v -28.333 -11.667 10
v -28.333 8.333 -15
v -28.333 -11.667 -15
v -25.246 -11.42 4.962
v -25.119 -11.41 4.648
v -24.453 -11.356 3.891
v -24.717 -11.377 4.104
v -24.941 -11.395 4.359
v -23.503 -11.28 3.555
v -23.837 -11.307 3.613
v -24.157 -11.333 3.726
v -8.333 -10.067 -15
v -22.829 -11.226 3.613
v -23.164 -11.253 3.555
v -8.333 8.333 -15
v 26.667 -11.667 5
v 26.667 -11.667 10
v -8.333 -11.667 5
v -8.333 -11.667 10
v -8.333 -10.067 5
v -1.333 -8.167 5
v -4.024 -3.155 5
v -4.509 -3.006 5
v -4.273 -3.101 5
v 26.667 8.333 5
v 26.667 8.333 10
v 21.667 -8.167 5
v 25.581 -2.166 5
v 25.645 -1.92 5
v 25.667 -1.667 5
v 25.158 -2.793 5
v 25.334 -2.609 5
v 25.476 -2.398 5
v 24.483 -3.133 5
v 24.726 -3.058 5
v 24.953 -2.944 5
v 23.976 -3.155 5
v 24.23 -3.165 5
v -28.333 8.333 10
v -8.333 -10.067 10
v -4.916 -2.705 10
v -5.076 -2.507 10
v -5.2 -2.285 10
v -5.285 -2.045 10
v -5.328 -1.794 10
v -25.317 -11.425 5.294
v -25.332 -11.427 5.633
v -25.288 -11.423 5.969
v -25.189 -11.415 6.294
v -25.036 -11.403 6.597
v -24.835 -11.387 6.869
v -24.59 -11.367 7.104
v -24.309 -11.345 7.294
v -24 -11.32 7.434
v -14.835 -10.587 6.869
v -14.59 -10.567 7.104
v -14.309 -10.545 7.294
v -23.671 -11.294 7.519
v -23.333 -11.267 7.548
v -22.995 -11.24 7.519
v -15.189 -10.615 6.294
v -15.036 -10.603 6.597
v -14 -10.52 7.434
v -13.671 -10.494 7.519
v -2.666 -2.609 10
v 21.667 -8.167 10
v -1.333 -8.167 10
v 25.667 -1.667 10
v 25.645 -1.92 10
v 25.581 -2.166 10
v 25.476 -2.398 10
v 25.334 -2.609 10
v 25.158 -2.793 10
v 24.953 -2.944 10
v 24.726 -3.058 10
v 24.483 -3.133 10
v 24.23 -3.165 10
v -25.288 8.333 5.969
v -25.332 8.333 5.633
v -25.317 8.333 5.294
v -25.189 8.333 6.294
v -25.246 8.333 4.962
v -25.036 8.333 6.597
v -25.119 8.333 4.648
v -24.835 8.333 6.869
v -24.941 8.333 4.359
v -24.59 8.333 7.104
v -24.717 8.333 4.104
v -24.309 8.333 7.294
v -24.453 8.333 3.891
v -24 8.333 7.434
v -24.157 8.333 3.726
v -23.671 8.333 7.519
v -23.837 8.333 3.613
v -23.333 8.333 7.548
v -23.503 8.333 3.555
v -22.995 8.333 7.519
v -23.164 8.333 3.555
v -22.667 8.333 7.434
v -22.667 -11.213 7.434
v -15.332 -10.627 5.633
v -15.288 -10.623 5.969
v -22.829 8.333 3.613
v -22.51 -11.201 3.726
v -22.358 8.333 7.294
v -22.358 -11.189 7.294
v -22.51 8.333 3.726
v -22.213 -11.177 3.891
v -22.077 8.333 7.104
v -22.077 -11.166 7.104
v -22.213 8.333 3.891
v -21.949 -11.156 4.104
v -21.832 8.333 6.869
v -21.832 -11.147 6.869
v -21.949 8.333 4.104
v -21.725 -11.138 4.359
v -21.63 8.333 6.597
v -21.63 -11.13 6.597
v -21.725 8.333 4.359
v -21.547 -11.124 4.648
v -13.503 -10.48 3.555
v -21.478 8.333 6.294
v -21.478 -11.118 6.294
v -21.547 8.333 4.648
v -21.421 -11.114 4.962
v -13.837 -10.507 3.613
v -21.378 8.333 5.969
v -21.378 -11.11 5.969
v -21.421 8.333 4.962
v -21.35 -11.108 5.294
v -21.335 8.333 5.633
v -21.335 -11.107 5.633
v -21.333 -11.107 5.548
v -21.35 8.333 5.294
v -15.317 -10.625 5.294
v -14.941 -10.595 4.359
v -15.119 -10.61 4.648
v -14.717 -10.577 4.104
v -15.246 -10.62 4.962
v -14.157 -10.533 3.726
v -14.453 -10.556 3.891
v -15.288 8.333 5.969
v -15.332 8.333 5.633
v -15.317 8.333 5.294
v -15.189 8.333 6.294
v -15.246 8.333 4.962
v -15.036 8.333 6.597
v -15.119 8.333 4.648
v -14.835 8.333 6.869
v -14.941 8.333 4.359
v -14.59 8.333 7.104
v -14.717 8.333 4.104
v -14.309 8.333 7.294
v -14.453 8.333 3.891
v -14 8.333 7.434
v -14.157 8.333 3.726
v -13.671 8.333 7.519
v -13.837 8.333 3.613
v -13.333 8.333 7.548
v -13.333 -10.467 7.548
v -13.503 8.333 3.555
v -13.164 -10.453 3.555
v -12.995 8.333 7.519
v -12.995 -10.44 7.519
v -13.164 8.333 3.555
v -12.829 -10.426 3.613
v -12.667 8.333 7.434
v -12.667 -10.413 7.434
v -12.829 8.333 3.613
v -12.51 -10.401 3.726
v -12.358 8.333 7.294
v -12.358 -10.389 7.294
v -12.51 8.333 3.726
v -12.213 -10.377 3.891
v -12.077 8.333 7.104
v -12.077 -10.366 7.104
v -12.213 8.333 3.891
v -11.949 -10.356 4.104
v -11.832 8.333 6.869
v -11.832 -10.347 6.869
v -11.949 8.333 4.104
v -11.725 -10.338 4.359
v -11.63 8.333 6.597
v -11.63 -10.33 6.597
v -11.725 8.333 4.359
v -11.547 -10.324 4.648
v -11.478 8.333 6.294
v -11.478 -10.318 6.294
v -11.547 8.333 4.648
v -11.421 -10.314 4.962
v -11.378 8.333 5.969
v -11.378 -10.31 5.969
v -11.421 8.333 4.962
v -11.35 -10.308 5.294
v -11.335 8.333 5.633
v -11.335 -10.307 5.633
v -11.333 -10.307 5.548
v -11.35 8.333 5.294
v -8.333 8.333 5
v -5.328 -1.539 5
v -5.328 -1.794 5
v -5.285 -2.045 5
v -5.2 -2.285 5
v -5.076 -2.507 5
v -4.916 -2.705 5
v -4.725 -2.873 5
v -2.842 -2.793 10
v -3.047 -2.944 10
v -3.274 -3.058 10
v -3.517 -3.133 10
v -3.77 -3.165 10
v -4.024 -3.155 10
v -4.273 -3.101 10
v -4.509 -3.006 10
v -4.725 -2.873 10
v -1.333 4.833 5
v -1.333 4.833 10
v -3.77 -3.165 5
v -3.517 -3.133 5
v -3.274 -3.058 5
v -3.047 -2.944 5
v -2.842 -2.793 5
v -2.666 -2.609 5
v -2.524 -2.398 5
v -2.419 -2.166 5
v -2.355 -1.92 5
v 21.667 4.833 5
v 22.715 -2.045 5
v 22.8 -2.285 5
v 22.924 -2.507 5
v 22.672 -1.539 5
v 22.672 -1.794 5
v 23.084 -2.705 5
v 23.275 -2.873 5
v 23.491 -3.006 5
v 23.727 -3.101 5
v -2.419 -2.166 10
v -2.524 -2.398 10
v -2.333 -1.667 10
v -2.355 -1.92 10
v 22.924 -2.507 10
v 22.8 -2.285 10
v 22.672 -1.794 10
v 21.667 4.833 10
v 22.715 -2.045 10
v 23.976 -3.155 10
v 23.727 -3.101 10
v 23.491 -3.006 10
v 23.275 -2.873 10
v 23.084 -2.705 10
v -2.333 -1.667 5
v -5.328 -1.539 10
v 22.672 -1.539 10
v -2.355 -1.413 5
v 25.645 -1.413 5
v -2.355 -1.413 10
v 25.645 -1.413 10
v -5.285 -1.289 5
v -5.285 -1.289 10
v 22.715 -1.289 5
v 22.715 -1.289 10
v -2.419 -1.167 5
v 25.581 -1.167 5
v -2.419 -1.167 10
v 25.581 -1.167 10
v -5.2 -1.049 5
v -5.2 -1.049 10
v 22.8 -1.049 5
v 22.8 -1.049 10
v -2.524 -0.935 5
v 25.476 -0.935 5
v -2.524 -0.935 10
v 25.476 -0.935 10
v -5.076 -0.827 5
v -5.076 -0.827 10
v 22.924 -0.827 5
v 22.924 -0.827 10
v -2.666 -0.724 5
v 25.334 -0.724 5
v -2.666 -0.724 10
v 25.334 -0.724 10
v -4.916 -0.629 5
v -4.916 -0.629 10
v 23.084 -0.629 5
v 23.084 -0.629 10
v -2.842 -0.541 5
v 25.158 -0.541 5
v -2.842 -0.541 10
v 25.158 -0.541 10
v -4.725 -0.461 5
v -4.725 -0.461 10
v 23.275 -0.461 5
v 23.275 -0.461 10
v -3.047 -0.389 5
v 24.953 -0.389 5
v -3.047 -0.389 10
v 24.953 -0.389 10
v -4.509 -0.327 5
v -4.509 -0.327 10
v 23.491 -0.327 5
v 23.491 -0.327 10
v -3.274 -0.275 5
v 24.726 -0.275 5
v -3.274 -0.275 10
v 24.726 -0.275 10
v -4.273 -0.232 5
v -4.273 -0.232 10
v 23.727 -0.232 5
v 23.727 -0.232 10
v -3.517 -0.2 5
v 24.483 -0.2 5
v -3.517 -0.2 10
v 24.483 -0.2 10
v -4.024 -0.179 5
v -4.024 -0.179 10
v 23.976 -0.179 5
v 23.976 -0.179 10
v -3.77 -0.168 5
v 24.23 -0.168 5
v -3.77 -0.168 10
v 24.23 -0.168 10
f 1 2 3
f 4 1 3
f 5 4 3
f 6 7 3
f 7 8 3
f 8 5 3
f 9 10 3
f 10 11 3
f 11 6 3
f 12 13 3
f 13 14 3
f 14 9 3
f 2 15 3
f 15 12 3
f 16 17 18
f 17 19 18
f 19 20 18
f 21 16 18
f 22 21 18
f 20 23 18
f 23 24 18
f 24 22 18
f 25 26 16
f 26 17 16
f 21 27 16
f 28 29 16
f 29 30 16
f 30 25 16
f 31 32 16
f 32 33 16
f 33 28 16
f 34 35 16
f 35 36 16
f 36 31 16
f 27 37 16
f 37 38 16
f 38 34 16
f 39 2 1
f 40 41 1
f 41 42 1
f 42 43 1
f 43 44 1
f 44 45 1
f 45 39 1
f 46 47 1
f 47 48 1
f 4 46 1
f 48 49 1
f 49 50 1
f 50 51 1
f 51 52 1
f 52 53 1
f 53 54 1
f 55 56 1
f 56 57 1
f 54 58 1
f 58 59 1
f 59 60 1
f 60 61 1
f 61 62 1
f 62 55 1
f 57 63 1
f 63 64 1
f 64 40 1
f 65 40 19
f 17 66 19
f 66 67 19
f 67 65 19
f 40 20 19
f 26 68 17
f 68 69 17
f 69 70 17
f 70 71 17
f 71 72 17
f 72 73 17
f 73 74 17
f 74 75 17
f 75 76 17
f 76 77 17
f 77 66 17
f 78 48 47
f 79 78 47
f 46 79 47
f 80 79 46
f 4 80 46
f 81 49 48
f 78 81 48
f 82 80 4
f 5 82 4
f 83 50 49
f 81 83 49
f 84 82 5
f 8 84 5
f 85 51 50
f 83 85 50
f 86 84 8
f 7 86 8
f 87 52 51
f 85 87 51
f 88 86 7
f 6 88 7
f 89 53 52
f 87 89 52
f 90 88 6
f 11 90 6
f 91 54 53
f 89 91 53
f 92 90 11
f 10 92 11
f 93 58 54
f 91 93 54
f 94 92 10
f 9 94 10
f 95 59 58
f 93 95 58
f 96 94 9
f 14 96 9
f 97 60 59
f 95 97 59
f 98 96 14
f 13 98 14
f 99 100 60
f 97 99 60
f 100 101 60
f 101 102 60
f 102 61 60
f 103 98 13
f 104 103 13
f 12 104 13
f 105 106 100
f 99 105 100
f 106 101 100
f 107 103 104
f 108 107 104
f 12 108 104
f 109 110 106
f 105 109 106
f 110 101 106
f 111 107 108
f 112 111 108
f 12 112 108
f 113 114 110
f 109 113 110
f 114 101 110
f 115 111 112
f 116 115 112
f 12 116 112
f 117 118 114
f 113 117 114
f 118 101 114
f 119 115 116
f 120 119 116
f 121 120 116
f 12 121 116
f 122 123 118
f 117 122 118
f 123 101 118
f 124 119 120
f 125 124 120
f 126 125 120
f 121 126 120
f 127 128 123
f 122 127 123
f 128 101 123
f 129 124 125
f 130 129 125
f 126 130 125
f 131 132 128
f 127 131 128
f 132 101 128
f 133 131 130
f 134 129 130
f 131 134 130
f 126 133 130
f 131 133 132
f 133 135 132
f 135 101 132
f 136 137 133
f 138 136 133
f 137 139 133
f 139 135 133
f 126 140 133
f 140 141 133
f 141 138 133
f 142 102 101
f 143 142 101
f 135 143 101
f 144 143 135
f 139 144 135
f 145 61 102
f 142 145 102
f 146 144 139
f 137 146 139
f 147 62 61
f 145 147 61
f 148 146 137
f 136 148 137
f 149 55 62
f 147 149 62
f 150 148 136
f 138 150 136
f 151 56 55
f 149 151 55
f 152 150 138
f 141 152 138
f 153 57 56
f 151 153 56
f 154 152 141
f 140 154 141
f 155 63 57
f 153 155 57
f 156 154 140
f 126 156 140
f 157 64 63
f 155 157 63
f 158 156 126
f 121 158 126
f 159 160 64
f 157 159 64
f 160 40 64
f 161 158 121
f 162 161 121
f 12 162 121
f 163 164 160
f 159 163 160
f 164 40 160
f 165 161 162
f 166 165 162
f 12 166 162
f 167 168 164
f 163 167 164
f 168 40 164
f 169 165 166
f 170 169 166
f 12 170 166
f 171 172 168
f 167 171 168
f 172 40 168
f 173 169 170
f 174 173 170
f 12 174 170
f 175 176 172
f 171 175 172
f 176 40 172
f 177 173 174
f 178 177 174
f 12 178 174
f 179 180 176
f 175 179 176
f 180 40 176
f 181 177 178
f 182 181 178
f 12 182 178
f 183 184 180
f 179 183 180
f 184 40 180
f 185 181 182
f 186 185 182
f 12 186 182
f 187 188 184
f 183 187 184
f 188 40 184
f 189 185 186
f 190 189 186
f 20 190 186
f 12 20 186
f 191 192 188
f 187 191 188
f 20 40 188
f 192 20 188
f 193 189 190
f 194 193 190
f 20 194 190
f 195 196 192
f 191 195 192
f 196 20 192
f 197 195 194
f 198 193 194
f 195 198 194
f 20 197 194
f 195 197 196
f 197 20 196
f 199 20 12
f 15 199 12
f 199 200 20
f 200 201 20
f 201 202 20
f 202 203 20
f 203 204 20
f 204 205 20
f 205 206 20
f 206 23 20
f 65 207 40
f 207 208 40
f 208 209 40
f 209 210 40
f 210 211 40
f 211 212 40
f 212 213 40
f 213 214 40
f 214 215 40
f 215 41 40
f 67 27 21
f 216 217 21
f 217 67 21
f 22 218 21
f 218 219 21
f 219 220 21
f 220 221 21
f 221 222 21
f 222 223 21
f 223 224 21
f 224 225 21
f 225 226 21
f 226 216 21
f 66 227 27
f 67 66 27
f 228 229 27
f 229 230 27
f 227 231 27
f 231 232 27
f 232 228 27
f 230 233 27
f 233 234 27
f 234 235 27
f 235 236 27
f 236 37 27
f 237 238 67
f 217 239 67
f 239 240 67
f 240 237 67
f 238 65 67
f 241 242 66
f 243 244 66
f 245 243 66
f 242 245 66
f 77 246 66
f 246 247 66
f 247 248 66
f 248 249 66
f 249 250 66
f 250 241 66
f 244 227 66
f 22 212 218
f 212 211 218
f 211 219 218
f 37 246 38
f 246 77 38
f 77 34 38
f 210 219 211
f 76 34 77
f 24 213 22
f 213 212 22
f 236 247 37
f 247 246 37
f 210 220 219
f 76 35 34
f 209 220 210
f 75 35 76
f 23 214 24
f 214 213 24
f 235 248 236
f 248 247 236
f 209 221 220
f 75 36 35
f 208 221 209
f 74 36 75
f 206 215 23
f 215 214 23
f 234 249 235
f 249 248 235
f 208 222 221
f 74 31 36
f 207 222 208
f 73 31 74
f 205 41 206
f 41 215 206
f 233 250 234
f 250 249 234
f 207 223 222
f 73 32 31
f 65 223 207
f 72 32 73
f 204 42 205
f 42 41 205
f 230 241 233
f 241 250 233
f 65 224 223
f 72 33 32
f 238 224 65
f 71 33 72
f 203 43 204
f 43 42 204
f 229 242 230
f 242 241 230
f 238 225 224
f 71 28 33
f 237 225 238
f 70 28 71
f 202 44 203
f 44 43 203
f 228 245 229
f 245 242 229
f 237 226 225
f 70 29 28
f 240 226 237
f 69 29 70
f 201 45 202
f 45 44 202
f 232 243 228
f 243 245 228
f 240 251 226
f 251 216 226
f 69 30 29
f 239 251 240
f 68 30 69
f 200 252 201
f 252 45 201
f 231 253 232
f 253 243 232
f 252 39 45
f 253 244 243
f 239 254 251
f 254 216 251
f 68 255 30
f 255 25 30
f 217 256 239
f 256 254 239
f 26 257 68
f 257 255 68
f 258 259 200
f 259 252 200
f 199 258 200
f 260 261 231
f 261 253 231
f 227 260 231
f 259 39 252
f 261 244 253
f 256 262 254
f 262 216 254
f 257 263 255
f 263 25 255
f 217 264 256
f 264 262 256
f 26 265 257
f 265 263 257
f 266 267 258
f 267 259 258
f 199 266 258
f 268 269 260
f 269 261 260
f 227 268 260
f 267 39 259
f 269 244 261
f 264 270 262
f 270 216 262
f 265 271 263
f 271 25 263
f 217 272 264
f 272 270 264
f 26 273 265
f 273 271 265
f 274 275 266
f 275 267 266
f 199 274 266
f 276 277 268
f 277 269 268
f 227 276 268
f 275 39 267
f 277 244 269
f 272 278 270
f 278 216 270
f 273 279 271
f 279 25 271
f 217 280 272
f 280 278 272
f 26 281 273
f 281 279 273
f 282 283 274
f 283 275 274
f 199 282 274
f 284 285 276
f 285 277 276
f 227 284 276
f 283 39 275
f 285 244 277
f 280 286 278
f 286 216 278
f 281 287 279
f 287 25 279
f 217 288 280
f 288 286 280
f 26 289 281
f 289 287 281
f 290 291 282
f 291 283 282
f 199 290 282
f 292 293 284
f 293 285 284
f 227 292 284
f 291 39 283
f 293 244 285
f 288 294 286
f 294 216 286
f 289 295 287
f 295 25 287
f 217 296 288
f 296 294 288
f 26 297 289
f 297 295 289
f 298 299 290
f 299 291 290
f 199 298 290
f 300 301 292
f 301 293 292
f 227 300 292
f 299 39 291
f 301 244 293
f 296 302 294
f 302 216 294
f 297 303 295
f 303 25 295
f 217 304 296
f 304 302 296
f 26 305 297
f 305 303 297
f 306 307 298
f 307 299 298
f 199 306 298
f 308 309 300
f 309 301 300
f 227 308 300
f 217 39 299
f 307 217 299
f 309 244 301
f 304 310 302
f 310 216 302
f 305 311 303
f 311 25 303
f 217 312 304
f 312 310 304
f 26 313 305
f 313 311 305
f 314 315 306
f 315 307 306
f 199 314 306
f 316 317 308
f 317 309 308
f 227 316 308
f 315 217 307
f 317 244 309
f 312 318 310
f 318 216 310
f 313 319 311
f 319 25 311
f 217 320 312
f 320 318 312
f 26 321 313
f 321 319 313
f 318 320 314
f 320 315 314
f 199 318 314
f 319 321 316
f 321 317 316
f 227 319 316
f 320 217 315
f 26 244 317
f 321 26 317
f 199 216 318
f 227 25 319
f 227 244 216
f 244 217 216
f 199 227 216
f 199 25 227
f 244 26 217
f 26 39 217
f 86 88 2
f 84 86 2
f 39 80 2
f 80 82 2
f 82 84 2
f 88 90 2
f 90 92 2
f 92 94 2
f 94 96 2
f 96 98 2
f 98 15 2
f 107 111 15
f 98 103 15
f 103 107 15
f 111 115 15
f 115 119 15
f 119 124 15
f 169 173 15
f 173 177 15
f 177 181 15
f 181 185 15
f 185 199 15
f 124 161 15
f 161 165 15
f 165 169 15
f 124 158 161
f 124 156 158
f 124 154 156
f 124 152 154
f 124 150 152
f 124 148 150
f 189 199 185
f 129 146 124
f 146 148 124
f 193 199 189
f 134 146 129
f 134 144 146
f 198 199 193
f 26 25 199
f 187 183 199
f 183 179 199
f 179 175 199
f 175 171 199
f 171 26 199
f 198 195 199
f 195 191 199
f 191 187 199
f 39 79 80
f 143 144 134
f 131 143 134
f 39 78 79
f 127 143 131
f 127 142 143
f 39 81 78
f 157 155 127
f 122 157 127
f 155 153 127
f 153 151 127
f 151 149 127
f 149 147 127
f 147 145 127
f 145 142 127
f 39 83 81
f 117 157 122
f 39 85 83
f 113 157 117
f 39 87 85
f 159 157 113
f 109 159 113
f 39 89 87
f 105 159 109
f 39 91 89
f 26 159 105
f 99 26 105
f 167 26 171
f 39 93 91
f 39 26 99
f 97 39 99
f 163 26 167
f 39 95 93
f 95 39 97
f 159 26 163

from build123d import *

# Parameters (mm, degrees)
ESQUISSE1_W             = 55
ESQUISSE1_H             = 20
BOSS_EXTRU_1_DEPTH      = 10
ESQUISSE2_R             = 2
ENL_V_MAT_EXTRU_1_DEPTH = 20
ESQUISSE3_R             = 1.5
ESQUISSE3_W             = 23
ESQUISSE3_H             = 13
ENL_V_MAT_EXTRU_2_DEPTH = 20
BOSS_EXTRU_2_DEPTH      = 15
ENL_V_MAT_EXTRU_3_DEPTH = 15
ESQUISSE7_W             = 35
ESQUISSE7_H             = 20
ENL_V_MAT_EXTRU_4_DEPTH = 5


with BuildPart() as part:
    # Esquisse1 → Boss.-Extru.1 (new body)
    with BuildSketch(Plane.XY):
        with Locations((-0.833333333, -1.666666667)):
            Rectangle(ESQUISSE1_W, ESQUISSE1_H)
    extrude(amount=BOSS_EXTRU_1_DEPTH)

    # Esquisse2 → Enlèv. mat.-Extru.1 (cut)
    with BuildSketch(Plane(origin=(0, 8.333333333, 0), x_dir=(1, 0, 0), z_dir=(0, 1, 0))):
        with Locations(Location((-23.333333333, -5.548124667, 0), (0, 0, 270))):
            Circle(ESQUISSE2_R)
        with Locations(Location((-13.333333333, -5.548124667, 0), (0, 0, 270))):
            Circle(ESQUISSE2_R)
    extrude(amount=-ENL_V_MAT_EXTRU_1_DEPTH, mode=Mode.SUBTRACT)

    # Esquisse3 → Enlèv. mat.-Extru.2 (cut)
    with BuildSketch(Plane.XY.offset(10)):
        with Locations((24.166666667, -1.666666667)):
            Circle(ESQUISSE3_R)
        with Locations((-3.833333333, -1.666666667)):
            Circle(ESQUISSE3_R)
        with Locations((10.166666667, -1.666666667)):
            Rectangle(ESQUISSE3_W, ESQUISSE3_H)
    extrude(amount=-ENL_V_MAT_EXTRU_2_DEPTH, mode=Mode.SUBTRACT)

    # Esquisse5 → Boss.-Extru.2 (add)
    with BuildSketch(Plane(origin=(0, 0, 0), x_dir=(-1, 0, 0), z_dir=(0, 0, -1))):
        Polygon((28.333333333, -11.666666667), (28.333333333, 8.333333333), (8.333333333, 8.333333333), (8.333333333, -10.066666667), align=None)
    extrude(amount=BOSS_EXTRU_2_DEPTH)

    # Esquisse6 → Enlèv. mat.-Extru.3 (cut)
    with BuildSketch(Plane(origin=(0, 0, 0), x_dir=(-1, 0, 0), z_dir=(0, 0, -1))):
        Polygon((8.333333333, -10.066666667), (8.333333333, -11.666666667), (28.333333333, -11.666666667), align=None)
    extrude(amount=-ENL_V_MAT_EXTRU_3_DEPTH, mode=Mode.SUBTRACT)

    # Esquisse7 → Enlèv. mat.-Extru.4 (cut)
    with BuildSketch(Plane(origin=(0, 0, 0), x_dir=(-1, 0, 0), z_dir=(0, 0, -1))):
        with Locations((-9.166666667, -1.666666667)):
            Rectangle(ESQUISSE7_W, ESQUISSE7_H)
    extrude(amount=-ENL_V_MAT_EXTRU_4_DEPTH, mode=Mode.SUBTRACT)


solid = part.part
